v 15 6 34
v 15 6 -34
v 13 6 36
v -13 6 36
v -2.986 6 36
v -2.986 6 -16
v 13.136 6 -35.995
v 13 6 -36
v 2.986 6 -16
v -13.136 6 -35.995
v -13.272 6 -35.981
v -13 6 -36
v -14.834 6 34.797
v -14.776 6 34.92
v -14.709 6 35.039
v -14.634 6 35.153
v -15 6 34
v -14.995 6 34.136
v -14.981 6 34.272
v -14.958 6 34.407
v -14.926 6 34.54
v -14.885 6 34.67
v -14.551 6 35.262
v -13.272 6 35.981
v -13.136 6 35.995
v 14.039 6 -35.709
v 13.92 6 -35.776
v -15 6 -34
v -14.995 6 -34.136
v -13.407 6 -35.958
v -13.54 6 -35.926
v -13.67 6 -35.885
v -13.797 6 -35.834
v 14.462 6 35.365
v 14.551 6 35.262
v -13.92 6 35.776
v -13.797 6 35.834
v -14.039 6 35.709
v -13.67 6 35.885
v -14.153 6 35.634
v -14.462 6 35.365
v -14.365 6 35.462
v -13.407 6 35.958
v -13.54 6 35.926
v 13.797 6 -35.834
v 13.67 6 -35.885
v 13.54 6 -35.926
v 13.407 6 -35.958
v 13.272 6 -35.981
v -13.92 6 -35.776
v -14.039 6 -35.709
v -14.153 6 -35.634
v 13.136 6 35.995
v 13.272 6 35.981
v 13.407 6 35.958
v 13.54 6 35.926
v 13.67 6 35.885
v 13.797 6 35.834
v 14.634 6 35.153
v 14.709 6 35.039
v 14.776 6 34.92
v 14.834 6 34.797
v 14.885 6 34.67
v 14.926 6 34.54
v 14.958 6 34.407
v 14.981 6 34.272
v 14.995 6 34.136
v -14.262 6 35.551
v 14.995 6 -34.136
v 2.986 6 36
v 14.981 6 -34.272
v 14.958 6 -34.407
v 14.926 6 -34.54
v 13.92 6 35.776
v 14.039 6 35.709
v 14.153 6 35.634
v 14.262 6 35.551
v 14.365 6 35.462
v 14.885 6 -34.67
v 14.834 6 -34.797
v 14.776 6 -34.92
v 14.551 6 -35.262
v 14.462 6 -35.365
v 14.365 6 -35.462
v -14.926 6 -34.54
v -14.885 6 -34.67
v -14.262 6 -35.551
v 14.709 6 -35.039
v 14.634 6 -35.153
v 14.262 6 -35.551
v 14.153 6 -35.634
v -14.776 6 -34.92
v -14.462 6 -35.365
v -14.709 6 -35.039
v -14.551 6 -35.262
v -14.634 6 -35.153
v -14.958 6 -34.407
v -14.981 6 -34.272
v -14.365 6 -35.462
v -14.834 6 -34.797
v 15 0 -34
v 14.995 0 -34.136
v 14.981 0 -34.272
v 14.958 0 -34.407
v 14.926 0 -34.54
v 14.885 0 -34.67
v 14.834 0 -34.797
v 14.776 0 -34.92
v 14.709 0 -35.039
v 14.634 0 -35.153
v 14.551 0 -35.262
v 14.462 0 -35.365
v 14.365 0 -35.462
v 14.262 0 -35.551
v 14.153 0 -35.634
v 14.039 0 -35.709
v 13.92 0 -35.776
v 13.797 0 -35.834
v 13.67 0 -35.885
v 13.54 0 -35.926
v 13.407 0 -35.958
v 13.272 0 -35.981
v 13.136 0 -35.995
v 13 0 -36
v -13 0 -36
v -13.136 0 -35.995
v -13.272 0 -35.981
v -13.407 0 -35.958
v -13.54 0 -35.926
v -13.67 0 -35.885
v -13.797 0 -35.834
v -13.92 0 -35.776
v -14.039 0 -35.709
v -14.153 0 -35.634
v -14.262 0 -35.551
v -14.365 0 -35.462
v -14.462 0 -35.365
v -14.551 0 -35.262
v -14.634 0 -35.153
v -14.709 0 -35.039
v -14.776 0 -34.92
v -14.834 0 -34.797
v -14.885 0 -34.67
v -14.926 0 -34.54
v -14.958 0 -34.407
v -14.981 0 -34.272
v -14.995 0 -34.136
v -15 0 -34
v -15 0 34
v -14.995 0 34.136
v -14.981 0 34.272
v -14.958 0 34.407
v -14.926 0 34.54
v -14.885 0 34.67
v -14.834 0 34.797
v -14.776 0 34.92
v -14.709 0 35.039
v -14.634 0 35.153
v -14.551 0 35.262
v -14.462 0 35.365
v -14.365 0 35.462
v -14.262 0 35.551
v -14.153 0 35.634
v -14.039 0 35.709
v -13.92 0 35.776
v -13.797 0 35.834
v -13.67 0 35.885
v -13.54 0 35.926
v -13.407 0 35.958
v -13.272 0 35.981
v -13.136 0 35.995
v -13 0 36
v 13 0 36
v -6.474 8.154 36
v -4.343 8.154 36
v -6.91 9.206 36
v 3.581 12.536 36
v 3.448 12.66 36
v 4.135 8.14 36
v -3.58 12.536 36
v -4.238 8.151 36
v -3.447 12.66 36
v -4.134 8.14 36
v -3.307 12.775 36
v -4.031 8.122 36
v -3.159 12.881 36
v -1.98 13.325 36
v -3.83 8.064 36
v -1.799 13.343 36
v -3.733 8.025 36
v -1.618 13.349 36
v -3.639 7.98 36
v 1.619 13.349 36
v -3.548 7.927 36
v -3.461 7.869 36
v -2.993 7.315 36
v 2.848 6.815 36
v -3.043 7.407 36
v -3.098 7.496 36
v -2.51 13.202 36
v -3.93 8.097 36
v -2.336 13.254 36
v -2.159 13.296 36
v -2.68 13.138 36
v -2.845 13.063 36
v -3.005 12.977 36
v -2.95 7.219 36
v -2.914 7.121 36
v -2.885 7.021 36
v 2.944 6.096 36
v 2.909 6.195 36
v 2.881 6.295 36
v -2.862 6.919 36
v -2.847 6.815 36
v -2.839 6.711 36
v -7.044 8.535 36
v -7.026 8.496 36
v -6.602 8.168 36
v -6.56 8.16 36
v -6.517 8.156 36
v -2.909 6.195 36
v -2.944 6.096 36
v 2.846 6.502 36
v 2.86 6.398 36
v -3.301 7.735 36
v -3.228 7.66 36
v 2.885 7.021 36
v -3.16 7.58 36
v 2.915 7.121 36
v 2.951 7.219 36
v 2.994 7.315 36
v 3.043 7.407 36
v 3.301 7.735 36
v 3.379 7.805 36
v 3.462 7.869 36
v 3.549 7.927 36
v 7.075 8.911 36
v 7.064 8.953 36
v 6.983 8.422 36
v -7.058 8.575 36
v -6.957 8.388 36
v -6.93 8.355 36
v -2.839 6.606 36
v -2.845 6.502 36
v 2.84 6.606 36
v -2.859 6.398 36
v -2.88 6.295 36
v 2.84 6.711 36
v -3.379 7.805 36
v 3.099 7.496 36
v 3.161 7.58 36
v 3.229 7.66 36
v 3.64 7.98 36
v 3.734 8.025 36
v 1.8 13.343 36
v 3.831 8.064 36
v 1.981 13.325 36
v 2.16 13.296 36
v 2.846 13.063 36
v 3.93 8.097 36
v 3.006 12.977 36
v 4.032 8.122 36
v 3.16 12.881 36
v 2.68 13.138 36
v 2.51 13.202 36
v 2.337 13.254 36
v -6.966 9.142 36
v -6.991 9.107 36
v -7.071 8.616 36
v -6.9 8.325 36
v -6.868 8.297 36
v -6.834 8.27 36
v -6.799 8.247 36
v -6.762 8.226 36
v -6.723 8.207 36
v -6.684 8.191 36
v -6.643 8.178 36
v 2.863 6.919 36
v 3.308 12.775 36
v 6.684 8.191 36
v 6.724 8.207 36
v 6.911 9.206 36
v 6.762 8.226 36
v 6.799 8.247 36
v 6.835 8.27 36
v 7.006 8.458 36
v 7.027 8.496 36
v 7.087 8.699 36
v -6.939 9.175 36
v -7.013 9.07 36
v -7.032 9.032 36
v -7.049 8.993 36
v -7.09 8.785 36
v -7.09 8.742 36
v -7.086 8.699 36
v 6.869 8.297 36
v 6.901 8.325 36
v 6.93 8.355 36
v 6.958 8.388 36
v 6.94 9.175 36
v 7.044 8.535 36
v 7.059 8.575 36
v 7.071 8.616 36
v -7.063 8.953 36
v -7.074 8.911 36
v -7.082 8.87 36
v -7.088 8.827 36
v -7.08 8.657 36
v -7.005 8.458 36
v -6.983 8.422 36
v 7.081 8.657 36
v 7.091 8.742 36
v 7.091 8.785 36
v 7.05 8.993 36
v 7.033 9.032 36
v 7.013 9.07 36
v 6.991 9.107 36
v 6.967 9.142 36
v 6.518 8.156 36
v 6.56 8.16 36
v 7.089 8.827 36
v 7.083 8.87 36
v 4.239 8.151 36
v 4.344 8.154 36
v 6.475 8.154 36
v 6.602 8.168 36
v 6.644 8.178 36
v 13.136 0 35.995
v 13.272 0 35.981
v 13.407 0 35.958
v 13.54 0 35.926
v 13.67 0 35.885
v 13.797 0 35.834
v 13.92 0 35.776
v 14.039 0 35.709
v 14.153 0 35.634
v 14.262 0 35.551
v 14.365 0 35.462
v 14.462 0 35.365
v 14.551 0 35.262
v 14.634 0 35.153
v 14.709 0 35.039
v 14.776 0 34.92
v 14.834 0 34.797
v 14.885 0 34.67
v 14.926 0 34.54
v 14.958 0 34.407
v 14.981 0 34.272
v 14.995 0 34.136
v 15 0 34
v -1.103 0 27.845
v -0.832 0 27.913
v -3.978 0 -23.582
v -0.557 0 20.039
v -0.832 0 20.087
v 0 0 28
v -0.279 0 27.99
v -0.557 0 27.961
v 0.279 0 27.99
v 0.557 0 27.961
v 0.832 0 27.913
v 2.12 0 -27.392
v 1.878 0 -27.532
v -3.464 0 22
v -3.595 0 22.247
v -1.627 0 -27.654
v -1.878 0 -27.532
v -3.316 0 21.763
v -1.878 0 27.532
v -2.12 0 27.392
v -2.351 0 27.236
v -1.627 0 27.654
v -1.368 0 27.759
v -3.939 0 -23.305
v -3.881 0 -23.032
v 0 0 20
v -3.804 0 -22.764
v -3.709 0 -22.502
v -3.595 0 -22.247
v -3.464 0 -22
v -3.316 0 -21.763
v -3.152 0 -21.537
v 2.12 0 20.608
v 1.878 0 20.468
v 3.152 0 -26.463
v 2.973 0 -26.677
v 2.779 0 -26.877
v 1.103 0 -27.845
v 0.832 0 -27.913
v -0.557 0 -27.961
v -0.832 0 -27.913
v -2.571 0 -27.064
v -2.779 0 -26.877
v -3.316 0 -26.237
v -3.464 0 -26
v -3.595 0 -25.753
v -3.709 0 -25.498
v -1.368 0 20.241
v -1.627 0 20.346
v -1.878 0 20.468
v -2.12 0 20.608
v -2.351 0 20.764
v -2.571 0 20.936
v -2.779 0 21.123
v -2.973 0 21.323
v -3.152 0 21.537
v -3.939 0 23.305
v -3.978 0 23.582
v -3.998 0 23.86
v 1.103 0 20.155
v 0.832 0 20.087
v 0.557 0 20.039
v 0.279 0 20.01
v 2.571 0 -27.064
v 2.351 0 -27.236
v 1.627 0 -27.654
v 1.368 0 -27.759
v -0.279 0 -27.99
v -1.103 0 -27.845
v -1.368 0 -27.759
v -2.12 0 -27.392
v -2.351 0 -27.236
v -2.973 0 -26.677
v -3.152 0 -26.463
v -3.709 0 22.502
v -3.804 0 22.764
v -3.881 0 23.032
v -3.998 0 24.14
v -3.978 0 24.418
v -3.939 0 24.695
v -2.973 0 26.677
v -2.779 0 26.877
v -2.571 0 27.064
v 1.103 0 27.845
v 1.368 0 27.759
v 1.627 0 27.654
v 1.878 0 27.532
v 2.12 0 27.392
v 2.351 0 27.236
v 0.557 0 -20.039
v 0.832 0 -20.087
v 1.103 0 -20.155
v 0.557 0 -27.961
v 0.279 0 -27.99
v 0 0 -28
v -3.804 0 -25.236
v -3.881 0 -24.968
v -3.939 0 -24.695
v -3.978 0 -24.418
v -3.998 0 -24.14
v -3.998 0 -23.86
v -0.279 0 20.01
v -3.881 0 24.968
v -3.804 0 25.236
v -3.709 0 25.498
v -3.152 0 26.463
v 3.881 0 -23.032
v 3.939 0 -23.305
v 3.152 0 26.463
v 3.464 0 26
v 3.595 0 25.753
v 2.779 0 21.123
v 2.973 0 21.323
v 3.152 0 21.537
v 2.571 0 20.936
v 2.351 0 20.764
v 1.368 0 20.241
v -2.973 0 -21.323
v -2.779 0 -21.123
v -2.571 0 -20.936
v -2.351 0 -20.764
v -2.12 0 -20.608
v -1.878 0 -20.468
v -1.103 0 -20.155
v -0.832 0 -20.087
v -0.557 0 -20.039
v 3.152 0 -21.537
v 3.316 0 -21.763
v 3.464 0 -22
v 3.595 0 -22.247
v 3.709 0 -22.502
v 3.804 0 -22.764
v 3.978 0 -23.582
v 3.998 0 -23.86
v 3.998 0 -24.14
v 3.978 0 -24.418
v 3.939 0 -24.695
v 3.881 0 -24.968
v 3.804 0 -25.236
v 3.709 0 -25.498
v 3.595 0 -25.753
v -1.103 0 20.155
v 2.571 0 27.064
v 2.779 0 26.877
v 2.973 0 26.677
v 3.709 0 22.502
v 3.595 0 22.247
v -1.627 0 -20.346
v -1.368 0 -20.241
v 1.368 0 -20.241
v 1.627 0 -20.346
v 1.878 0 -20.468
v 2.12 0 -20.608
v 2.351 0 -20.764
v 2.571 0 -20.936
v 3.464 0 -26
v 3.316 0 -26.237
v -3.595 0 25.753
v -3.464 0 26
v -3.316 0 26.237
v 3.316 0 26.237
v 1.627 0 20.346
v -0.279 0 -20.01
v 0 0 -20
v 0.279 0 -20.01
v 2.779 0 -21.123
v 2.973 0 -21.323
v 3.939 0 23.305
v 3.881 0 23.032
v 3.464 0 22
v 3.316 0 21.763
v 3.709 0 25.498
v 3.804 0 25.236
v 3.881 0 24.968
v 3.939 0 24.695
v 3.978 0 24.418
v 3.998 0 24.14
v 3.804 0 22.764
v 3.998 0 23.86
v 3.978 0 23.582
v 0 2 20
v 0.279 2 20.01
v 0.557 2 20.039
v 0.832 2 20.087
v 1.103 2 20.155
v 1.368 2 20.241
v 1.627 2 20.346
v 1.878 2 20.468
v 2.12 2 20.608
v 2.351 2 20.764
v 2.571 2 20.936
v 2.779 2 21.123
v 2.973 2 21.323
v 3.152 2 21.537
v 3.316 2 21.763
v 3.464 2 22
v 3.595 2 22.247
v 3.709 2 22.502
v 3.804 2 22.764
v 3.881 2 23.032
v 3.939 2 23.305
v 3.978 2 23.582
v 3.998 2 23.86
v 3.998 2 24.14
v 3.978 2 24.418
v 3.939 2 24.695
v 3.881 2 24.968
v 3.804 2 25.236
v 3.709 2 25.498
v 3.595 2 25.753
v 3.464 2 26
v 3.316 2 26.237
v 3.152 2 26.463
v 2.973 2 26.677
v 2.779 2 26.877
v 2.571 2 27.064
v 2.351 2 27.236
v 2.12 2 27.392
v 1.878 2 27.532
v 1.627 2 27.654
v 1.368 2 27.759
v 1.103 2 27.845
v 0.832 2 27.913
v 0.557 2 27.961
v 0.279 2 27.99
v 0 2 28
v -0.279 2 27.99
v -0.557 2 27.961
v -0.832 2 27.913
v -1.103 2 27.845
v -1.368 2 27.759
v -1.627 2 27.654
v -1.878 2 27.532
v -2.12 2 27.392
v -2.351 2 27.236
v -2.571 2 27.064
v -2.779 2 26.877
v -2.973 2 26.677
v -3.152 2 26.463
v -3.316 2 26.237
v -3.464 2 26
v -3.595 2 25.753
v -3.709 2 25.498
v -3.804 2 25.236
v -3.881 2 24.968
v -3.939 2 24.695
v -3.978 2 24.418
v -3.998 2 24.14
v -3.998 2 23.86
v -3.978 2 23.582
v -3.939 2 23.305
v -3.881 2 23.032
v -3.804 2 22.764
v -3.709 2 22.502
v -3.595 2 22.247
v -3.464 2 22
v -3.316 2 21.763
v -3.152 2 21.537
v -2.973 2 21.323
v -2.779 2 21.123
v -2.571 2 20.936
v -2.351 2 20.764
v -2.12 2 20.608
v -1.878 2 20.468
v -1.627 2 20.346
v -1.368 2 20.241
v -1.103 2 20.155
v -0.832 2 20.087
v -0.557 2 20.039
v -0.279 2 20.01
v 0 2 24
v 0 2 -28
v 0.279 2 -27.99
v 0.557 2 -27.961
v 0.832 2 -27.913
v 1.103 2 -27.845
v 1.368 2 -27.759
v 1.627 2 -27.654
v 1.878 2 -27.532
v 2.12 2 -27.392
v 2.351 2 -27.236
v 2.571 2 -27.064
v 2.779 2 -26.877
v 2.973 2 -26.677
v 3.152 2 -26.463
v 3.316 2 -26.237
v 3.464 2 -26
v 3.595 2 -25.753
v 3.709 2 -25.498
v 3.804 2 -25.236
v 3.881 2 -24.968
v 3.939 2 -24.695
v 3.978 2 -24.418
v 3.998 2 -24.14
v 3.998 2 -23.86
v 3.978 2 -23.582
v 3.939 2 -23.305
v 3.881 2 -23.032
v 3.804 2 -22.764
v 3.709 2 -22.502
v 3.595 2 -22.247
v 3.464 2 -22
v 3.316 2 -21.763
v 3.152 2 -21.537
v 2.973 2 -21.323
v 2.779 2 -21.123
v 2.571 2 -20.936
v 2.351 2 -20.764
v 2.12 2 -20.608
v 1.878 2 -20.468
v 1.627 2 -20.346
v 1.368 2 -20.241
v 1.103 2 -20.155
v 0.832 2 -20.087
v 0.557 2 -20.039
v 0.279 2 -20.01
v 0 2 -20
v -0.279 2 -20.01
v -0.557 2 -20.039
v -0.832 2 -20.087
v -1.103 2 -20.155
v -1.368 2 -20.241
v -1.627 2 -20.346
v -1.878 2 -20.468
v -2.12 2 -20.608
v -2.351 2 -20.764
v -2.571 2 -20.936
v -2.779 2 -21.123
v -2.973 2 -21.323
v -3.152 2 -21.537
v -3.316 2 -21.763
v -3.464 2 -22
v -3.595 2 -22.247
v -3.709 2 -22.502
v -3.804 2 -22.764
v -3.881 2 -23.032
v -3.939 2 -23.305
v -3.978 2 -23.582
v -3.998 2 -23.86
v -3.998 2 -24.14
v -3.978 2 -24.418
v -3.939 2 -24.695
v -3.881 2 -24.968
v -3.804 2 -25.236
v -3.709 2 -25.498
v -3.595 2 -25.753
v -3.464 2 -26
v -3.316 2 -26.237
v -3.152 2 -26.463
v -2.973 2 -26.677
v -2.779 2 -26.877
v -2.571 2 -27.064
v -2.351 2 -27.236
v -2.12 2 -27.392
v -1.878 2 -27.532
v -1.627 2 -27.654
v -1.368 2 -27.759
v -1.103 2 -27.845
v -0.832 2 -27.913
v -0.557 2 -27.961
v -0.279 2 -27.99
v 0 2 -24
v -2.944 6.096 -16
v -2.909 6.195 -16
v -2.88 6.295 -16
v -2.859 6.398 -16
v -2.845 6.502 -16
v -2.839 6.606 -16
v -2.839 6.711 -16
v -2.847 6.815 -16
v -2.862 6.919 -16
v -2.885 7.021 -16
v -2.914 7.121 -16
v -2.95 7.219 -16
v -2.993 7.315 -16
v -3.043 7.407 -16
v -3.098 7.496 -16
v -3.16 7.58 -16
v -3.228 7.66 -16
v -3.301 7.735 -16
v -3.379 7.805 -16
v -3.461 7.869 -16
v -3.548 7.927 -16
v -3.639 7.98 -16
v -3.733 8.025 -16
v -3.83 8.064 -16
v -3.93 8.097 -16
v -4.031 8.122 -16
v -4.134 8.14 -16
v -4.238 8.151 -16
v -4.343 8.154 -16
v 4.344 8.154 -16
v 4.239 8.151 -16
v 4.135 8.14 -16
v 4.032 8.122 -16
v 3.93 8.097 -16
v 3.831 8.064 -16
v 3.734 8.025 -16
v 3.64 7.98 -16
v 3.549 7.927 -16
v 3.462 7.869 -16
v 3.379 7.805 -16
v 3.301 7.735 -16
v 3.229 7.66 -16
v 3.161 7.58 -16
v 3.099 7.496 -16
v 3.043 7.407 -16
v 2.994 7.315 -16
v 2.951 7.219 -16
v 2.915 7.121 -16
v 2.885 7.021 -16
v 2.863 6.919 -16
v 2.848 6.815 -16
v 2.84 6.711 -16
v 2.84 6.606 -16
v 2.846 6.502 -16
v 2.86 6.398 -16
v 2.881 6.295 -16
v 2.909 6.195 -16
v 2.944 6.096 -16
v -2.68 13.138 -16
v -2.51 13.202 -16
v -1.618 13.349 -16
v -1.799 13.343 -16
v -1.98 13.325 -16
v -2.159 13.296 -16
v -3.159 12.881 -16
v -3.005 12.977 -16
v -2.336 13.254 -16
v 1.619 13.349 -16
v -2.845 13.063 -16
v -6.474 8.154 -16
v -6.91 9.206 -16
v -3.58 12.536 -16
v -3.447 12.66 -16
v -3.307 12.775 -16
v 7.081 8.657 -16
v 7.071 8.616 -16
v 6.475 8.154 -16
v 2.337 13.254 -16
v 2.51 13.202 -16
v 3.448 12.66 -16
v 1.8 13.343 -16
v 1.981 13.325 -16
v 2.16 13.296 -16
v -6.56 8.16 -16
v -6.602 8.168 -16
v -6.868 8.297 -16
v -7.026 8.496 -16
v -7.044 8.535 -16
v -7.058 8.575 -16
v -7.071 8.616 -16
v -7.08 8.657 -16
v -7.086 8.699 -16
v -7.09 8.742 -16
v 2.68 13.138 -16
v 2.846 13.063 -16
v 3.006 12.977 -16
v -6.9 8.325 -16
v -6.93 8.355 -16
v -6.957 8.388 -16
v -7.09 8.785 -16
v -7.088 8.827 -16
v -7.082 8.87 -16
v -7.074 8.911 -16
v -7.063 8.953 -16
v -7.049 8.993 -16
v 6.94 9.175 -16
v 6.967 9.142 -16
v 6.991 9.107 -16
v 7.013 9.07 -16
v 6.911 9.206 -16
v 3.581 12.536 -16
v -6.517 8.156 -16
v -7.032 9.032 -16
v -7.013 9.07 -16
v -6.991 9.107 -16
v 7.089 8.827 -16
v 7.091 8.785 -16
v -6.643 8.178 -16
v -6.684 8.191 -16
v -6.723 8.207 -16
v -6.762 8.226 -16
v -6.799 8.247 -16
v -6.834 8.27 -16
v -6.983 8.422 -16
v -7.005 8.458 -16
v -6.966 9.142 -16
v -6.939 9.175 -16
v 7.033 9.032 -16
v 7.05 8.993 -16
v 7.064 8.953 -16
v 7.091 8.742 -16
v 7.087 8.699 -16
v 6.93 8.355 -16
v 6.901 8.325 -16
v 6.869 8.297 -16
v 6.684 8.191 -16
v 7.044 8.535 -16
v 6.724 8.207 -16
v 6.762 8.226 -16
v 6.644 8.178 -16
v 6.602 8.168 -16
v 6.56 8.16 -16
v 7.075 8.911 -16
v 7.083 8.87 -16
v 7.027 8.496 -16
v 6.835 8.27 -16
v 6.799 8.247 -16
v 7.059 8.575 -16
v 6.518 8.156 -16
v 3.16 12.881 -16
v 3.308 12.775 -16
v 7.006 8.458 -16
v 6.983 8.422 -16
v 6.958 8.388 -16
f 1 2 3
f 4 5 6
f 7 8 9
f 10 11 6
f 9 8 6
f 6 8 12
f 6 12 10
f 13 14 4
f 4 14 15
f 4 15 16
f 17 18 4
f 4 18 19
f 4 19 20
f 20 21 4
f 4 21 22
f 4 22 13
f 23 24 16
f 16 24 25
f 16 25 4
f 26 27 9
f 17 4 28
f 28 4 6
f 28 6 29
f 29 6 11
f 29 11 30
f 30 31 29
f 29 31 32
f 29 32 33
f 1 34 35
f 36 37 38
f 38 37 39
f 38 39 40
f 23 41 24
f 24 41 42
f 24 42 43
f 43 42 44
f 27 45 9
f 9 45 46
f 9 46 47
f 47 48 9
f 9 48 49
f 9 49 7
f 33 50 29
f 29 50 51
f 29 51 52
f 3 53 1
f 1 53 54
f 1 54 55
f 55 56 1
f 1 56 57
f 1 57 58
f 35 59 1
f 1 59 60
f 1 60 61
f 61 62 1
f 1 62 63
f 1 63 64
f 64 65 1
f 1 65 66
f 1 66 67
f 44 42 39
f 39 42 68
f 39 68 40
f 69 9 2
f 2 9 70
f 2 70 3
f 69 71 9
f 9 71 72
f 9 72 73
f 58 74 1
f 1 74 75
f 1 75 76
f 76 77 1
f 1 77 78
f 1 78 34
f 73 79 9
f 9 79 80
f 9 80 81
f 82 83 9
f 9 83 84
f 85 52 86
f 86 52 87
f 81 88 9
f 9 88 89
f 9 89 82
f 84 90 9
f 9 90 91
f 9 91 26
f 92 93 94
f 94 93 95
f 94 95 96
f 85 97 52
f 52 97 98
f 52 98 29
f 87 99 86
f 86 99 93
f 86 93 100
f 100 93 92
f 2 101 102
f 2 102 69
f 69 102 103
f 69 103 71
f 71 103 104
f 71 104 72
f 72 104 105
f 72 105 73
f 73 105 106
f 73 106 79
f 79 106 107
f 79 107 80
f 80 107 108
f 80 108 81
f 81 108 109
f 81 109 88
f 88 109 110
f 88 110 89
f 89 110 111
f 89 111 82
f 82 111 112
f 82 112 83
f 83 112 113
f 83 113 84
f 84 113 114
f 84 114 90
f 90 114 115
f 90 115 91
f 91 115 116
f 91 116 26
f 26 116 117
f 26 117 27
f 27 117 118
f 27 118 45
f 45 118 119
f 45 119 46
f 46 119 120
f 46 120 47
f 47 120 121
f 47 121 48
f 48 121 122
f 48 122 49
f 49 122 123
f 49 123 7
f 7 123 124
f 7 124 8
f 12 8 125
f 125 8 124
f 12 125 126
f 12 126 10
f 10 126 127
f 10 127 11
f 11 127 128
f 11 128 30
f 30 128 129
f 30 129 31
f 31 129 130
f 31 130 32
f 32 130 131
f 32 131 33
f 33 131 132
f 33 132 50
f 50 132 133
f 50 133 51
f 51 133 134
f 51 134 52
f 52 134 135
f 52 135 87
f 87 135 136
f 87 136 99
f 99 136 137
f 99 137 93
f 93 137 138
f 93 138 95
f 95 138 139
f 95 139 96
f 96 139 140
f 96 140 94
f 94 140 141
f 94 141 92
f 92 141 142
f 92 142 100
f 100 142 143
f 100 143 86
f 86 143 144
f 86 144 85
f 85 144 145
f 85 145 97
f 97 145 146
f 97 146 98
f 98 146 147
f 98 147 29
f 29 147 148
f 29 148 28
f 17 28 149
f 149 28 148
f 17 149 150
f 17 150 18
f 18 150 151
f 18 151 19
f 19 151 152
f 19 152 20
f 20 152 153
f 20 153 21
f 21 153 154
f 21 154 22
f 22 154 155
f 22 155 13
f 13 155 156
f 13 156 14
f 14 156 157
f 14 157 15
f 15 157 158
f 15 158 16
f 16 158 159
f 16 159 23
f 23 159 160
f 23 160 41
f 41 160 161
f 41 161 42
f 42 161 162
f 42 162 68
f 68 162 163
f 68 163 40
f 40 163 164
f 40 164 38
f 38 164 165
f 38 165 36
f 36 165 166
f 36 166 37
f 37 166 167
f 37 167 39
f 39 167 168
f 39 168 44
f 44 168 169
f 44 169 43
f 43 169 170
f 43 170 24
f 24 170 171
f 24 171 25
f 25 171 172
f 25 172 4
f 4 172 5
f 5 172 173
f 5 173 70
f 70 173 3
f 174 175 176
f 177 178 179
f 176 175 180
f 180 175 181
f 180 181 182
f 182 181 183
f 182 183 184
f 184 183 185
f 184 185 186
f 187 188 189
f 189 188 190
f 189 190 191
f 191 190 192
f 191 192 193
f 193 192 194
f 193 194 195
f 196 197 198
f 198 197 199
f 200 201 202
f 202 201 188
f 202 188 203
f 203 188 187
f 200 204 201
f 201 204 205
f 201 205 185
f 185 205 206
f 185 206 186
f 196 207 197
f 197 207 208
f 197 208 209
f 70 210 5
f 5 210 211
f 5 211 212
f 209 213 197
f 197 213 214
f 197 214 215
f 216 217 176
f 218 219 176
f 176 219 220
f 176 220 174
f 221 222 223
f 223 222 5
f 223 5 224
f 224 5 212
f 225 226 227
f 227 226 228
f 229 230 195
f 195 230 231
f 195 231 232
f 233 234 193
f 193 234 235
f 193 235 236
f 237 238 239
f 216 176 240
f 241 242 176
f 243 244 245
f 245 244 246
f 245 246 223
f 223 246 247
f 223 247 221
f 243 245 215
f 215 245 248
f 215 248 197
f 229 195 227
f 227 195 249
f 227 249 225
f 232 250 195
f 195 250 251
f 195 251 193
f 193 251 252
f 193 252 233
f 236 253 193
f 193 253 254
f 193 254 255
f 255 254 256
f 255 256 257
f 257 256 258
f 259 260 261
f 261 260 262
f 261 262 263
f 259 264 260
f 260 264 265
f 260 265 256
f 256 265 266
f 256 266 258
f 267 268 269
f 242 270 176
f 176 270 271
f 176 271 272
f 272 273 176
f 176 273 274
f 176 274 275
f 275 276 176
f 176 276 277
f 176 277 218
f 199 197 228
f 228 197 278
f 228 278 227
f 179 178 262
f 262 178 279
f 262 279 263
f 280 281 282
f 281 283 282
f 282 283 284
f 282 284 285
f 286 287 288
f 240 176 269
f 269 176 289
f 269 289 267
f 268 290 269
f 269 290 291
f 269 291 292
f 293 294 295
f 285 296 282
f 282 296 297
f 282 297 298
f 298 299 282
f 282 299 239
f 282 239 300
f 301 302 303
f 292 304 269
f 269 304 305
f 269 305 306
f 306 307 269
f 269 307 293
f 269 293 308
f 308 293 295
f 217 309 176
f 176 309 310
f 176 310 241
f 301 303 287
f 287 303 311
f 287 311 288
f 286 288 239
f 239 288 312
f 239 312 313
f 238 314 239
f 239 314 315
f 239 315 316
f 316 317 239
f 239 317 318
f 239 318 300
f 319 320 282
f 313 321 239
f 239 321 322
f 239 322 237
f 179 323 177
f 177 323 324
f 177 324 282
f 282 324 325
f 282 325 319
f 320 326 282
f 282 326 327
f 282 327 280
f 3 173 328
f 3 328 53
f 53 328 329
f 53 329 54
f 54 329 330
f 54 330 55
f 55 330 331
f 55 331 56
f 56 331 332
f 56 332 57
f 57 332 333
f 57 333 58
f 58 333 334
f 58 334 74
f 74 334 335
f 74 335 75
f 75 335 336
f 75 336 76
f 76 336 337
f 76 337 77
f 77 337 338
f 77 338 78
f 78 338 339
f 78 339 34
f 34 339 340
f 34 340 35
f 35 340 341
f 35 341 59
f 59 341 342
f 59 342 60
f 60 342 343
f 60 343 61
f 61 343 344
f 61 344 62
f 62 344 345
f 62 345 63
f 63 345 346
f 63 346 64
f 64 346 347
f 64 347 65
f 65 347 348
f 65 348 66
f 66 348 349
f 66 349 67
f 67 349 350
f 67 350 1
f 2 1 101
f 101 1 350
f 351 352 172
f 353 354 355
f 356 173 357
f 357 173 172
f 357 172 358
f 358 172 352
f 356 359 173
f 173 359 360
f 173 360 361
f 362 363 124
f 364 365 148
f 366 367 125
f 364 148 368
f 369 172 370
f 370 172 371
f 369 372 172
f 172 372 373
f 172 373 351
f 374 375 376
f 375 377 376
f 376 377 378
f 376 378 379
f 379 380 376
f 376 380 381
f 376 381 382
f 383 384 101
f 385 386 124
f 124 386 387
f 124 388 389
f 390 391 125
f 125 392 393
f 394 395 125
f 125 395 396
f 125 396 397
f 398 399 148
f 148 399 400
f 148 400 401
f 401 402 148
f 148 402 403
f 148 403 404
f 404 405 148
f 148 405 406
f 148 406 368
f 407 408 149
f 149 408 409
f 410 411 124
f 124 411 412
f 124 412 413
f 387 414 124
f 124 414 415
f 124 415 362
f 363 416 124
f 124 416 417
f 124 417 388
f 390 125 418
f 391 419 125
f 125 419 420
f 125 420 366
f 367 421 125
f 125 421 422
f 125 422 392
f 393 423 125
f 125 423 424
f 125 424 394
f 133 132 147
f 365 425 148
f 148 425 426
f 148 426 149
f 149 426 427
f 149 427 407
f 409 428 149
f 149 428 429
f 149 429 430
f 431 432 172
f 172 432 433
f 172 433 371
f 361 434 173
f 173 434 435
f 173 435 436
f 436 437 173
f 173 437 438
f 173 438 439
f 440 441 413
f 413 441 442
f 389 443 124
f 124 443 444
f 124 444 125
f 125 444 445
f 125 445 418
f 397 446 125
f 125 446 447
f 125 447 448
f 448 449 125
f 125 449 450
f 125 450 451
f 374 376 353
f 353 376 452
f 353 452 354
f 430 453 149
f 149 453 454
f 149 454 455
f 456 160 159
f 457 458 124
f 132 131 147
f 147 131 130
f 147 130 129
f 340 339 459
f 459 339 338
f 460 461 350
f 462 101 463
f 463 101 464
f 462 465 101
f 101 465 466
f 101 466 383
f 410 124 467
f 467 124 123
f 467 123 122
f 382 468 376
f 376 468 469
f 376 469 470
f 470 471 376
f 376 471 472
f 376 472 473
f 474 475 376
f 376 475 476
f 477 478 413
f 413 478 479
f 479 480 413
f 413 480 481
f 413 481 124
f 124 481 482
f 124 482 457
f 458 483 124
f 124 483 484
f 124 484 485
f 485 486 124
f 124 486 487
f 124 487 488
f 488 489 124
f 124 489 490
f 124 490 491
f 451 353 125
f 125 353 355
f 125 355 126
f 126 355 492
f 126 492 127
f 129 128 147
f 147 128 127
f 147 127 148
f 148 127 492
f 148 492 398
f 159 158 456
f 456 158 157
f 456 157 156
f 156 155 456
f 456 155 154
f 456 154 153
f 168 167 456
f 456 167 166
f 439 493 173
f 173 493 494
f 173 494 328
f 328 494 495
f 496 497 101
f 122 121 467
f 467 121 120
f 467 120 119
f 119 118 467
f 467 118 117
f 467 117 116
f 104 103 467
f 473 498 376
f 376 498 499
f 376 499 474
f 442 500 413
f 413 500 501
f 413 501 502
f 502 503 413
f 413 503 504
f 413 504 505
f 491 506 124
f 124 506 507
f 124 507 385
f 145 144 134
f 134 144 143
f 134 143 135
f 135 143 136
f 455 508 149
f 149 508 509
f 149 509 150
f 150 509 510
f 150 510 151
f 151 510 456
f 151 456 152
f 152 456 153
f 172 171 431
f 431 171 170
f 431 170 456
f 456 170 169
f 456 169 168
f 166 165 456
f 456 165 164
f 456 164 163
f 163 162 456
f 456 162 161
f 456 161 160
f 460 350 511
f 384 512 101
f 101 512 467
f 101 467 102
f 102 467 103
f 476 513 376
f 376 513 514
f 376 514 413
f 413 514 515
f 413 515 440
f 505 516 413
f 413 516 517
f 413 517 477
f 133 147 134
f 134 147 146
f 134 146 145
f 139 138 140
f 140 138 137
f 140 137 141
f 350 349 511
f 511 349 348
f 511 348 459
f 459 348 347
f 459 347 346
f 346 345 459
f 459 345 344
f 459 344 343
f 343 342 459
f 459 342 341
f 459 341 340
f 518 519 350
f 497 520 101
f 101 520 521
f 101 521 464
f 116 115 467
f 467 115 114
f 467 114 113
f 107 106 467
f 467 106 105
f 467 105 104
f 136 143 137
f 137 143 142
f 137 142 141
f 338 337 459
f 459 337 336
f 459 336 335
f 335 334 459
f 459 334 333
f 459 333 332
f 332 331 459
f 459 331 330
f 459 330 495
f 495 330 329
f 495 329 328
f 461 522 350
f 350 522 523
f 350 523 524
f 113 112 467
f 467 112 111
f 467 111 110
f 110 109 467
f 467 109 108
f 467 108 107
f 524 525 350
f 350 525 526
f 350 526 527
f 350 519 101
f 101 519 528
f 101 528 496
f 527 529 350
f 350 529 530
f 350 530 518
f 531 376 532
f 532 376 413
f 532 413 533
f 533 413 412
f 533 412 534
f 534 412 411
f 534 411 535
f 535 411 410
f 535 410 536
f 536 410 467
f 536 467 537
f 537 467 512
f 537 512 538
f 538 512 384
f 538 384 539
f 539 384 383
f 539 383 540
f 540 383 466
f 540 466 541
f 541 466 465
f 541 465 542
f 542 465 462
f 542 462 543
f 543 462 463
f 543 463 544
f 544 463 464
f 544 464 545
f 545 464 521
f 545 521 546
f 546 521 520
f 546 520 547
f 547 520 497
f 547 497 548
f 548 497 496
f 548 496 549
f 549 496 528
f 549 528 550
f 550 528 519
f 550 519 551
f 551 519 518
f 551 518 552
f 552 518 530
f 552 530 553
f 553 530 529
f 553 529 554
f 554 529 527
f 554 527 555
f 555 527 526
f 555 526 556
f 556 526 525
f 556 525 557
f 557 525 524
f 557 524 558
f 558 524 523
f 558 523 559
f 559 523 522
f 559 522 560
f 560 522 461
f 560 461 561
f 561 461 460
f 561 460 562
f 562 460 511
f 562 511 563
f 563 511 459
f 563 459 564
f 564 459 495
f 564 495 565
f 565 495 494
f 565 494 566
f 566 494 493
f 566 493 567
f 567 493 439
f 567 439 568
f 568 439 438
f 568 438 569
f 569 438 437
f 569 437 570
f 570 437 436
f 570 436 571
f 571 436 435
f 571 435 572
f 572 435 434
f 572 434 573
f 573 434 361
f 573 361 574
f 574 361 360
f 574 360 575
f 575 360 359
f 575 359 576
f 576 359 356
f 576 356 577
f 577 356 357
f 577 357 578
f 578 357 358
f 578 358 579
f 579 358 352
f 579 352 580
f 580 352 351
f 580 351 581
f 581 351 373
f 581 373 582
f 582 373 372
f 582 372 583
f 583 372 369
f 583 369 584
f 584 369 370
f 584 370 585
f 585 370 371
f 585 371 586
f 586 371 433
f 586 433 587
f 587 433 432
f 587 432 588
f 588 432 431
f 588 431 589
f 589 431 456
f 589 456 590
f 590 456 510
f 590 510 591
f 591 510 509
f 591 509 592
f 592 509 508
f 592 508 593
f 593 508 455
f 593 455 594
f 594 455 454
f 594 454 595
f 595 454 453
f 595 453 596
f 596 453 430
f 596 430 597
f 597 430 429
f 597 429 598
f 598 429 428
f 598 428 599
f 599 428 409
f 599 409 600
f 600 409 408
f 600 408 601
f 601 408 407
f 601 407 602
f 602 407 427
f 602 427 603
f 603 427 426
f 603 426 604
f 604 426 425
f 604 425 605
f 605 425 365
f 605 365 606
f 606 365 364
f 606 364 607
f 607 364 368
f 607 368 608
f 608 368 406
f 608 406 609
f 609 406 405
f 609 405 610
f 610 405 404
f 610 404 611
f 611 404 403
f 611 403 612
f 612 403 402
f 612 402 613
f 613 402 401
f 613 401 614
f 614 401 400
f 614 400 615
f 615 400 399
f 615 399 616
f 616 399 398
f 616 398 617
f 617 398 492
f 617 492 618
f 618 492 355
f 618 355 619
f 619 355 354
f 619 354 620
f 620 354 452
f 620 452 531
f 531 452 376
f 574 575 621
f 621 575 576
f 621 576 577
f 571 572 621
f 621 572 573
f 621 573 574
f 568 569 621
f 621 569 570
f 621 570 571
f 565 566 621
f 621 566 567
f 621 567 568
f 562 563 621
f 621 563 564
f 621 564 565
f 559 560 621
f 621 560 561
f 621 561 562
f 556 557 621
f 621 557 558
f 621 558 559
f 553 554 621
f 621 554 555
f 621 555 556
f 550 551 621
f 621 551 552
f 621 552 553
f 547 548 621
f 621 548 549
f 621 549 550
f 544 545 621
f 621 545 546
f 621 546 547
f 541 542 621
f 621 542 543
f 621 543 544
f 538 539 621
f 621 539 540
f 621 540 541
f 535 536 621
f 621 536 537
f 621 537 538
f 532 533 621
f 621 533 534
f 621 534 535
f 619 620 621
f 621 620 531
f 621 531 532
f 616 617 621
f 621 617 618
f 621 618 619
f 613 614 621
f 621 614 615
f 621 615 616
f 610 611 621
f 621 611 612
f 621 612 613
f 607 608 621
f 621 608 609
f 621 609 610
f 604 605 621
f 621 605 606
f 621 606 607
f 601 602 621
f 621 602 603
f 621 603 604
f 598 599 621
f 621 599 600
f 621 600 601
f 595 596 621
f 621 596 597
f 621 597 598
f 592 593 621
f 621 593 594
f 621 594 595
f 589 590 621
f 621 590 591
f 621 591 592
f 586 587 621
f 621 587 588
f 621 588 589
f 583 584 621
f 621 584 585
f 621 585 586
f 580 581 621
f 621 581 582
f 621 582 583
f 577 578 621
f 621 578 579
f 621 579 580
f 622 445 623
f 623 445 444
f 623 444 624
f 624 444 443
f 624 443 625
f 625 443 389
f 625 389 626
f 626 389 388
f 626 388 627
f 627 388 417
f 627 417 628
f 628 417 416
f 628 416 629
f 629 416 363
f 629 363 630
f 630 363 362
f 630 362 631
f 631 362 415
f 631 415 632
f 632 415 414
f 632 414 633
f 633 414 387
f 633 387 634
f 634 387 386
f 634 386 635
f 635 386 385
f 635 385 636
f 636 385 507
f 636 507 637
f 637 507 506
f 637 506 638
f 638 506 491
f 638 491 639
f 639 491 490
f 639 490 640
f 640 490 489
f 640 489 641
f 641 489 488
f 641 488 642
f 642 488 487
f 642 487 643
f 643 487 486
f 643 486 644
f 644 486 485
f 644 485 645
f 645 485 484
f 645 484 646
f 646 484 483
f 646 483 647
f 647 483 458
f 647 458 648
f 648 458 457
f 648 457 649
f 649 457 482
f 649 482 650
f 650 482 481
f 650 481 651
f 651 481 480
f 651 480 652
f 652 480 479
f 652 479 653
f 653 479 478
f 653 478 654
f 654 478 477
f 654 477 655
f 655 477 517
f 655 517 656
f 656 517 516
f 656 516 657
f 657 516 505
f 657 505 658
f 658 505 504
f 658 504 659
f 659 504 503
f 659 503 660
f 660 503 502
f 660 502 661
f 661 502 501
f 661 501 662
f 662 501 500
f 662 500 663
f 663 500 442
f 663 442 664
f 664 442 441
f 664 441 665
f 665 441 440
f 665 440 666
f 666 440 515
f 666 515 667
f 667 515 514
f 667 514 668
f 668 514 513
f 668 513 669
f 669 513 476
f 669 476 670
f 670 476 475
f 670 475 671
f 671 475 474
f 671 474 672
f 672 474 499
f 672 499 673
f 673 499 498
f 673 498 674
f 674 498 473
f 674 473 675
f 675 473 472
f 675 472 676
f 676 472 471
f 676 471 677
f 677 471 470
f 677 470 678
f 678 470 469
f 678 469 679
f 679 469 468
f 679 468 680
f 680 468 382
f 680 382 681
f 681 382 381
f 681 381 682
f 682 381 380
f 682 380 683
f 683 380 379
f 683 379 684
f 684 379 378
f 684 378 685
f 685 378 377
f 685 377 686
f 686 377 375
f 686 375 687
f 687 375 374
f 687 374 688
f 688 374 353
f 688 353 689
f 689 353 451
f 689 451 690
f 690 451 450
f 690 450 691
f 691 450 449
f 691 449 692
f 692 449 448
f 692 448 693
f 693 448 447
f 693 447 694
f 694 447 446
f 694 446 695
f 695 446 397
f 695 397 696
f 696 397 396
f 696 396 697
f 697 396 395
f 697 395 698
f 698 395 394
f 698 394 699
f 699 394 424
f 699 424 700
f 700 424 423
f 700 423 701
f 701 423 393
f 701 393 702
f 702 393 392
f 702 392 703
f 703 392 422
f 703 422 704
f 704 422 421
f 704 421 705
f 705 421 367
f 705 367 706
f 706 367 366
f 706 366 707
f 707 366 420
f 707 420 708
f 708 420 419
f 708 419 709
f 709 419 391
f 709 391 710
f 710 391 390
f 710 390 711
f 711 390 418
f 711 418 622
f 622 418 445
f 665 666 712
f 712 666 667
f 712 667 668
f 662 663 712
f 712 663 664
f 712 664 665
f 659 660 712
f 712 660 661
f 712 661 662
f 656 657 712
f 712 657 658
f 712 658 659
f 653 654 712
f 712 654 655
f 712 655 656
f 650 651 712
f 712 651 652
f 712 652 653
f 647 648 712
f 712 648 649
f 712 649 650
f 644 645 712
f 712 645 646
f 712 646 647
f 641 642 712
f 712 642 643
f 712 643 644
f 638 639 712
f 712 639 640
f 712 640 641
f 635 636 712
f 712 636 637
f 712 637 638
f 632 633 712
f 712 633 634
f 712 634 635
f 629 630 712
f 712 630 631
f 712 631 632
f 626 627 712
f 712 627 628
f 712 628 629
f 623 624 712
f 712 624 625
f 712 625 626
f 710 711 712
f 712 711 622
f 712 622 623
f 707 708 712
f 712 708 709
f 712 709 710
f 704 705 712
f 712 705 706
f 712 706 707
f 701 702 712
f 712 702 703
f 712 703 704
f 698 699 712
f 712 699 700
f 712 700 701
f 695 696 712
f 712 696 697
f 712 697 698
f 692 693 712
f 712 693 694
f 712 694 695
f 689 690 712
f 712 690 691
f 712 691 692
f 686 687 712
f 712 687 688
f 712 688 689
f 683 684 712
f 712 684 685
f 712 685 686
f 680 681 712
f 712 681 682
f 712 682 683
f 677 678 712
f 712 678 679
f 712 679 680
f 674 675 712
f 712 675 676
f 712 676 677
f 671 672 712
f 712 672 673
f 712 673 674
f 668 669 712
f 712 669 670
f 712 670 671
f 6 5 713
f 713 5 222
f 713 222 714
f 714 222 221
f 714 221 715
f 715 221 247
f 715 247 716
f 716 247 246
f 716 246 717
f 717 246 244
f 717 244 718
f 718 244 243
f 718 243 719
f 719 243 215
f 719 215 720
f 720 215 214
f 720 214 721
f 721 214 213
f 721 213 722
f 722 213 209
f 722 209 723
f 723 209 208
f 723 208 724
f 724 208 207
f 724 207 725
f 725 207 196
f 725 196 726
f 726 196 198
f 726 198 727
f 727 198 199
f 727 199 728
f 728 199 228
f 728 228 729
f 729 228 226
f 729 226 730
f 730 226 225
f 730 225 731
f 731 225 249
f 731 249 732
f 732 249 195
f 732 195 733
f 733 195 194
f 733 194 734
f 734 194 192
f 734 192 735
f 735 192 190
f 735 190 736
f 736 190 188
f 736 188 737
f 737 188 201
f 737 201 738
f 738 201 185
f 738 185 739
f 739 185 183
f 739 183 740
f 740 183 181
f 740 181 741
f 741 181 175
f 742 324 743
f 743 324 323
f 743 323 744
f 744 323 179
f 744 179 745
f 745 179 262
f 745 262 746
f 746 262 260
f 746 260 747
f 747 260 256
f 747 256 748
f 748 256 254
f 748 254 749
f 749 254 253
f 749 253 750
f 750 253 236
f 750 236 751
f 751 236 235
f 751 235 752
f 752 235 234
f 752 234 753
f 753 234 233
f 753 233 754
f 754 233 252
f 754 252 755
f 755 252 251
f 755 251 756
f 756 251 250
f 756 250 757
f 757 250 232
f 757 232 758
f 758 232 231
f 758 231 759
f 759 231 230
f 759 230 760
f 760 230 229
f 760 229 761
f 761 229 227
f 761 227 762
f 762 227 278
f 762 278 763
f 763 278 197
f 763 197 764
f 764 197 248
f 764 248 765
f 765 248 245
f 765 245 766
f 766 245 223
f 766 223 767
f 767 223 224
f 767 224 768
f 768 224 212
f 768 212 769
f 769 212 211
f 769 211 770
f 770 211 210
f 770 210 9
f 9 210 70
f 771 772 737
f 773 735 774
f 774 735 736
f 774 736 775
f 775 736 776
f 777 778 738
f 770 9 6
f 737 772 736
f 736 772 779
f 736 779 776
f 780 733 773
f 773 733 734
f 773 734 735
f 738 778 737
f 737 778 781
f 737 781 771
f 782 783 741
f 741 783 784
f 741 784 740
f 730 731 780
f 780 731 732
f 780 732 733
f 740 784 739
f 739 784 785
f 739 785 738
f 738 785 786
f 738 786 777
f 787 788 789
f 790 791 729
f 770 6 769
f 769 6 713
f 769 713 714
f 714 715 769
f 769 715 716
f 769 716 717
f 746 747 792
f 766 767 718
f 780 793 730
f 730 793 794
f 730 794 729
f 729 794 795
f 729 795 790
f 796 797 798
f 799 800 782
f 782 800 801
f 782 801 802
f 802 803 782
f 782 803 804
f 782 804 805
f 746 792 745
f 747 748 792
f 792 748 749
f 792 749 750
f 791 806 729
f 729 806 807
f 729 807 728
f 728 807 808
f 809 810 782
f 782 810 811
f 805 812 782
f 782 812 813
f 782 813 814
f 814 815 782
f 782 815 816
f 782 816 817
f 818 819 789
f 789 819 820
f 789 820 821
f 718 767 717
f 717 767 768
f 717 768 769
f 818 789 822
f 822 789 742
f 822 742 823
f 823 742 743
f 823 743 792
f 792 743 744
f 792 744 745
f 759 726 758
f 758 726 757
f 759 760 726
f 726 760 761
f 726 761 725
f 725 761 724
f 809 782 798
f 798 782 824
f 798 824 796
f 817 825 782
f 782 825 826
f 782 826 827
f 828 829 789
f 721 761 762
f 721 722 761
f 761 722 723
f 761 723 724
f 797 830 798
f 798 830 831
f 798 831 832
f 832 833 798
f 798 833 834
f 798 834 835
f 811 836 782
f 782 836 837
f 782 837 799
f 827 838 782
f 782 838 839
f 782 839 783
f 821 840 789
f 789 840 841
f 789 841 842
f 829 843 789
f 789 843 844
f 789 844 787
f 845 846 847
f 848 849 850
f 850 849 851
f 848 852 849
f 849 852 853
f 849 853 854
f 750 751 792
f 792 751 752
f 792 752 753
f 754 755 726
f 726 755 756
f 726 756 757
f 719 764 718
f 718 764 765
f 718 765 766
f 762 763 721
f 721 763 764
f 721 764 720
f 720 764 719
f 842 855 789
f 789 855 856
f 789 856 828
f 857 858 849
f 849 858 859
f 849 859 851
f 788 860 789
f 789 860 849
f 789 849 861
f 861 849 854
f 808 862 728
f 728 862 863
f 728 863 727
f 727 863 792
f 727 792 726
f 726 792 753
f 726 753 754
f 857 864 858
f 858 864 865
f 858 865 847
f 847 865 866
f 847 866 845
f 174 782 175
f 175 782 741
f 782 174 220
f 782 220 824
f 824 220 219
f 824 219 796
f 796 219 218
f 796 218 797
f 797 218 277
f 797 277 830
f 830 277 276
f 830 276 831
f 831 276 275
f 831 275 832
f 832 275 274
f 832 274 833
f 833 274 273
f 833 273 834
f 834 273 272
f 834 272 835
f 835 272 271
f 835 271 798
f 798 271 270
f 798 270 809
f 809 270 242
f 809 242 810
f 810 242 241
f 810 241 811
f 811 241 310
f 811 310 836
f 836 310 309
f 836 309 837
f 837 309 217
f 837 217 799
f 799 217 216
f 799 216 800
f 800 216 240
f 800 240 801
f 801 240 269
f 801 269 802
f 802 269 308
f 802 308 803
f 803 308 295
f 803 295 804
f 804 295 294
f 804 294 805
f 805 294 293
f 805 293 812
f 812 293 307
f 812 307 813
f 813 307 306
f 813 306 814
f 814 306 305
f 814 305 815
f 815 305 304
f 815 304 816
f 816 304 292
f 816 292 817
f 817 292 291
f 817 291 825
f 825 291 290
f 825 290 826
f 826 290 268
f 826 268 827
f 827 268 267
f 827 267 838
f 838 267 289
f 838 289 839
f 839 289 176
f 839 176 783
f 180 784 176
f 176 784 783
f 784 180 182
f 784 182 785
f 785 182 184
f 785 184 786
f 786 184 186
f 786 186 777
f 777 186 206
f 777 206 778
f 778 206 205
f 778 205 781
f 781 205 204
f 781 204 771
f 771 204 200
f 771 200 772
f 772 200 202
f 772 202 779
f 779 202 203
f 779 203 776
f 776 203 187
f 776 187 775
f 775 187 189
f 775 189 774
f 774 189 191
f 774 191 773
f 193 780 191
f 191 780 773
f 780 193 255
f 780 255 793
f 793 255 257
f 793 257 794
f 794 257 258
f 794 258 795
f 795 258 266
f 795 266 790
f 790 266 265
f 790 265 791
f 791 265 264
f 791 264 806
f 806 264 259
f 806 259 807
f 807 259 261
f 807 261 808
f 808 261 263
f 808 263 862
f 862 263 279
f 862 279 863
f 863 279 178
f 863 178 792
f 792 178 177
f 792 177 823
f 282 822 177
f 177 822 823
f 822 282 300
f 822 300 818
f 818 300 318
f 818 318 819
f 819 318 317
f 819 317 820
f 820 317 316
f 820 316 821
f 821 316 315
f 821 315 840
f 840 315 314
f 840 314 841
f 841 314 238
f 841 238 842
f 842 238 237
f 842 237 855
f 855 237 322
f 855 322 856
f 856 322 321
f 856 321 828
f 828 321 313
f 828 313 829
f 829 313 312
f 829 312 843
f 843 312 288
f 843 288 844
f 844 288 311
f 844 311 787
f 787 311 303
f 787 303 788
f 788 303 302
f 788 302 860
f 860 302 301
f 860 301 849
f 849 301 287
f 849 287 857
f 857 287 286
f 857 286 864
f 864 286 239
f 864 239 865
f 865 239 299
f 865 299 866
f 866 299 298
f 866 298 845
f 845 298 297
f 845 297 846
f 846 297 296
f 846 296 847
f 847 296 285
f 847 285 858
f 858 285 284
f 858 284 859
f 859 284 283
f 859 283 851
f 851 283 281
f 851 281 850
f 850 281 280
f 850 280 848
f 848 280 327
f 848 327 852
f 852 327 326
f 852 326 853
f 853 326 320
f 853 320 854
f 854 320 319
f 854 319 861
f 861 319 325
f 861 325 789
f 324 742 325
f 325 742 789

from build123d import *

# Parameters (mm, degrees)
BOSS_EXTRUDE1_DEPTH      = 6
SKETCH2_R                = 4
CUT_EXTRUDE1_DEPTH       = 2
SKETCH3_W                = 6
SKETCH3_H                = 1.2
BOSS_EXTRUDE2_DEPTH      = 36
BOSS_EXTRUDE2_DEPTH_BACK = 16


with BuildPart() as part:
    # Sketch1 → Boss-Extrude1 (new body)
    with BuildSketch(Plane(origin=(0, 0, 0), x_dir=(1, 0, 0), z_dir=(0, 1, 0))):
        with BuildLine():
            Line((-13, 36), (13, 36))
            ThreePointArc((13, 36), (14.414213562, 35.414213562), (15, 34))
            Line((15, 34), (15, -34))
            ThreePointArc((15, -34), (14.414213562, -35.414213562), (13, -36))
            Line((13, -36), (-13, -36))
            ThreePointArc((-13, -36), (-14.414213562, -35.414213562), (-15, -34))
            Line((-15, -34), (-15, 34))
            ThreePointArc((-15, 34), (-14.414213562, 35.414213562), (-13, 36))
        make_face()
    extrude(amount=BOSS_EXTRUDE1_DEPTH)

    # Sketch2 → Cut-Extrude1 (cut)
    with BuildSketch(Plane(origin=(0, 0, 0), x_dir=(1, 0, 0), z_dir=(0, 1, 0))):
        with Locations((0, 24)):
            Circle(SKETCH2_R)
        with Locations((0, -24)):
            Circle(SKETCH2_R)
    extrude(amount=CUT_EXTRUDE1_DEPTH, mode=Mode.SUBTRACT)

    # Sketch3 → Boss-Extrude2 (add, two sides)
    with BuildSketch(Plane.XY) as boss_extrude2_sk:
        with BuildLine():
            Line((-4.343002999, 5.144651552), (-4.916686599, 5.144651552))
            Line((-4.916686599, 5.144651552), (-4.916686599, 3.944651552))
            Line((-4.916686599, 3.944651552), (4.917480601, 3.944651552))
            Line((4.917480601, 3.944651552), (4.917480601, 5.144651552))
            Line((4.917480601, 5.144651552), (4.343796972, 5.144651552))
            ThreePointArc((4.343796972, 5.144651552), (2.838896972, 6.649551552), (4.343796972, 8.154451552))
            Line((4.343796972, 8.154451552), (6.475191456, 8.154451552))
            ThreePointArc((6.475191456, 8.154451552), (7.044301248, 8.534718558), (6.910769234, 9.206029329))
            Line((6.910769234, 9.206029329), (3.580725693, 12.53607287))
            ThreePointArc((3.580725693, 12.53607287), (2.6804509, 13.137617255), (1.618504375, 13.348851552))
            Line((1.618504375, 13.348851552), (-1.617710374, 13.348851552))
            ThreePointArc((-1.617710374, 13.348851552), (-2.679656898, 13.137617255), (-3.579931691, 12.53607287))
            Line((-3.579931691, 12.53607287), (-6.909975232, 9.206029329))
            ThreePointArc((-6.909975232, 9.206029329), (-7.043507247, 8.534718558), (-6.474397455, 8.154451552))
            Line((-6.474397455, 8.154451552), (-4.343002999, 8.154451552))
            ThreePointArc((-4.343002999, 8.154451552), (-2.838102999, 6.649551552), (-4.343002999, 5.144651552))
        make_face()
        with Locations((-7.916686599, 4.544651552)):
            Rectangle(SKETCH3_W, SKETCH3_H)
        with Locations((7.917480601, 4.544651552)):
            Rectangle(SKETCH3_W, SKETCH3_H)
    extrude(amount=BOSS_EXTRUDE2_DEPTH)
    extrude(boss_extrude2_sk.sketch, amount=-BOSS_EXTRUDE2_DEPTH_BACK)


solid = part.part
